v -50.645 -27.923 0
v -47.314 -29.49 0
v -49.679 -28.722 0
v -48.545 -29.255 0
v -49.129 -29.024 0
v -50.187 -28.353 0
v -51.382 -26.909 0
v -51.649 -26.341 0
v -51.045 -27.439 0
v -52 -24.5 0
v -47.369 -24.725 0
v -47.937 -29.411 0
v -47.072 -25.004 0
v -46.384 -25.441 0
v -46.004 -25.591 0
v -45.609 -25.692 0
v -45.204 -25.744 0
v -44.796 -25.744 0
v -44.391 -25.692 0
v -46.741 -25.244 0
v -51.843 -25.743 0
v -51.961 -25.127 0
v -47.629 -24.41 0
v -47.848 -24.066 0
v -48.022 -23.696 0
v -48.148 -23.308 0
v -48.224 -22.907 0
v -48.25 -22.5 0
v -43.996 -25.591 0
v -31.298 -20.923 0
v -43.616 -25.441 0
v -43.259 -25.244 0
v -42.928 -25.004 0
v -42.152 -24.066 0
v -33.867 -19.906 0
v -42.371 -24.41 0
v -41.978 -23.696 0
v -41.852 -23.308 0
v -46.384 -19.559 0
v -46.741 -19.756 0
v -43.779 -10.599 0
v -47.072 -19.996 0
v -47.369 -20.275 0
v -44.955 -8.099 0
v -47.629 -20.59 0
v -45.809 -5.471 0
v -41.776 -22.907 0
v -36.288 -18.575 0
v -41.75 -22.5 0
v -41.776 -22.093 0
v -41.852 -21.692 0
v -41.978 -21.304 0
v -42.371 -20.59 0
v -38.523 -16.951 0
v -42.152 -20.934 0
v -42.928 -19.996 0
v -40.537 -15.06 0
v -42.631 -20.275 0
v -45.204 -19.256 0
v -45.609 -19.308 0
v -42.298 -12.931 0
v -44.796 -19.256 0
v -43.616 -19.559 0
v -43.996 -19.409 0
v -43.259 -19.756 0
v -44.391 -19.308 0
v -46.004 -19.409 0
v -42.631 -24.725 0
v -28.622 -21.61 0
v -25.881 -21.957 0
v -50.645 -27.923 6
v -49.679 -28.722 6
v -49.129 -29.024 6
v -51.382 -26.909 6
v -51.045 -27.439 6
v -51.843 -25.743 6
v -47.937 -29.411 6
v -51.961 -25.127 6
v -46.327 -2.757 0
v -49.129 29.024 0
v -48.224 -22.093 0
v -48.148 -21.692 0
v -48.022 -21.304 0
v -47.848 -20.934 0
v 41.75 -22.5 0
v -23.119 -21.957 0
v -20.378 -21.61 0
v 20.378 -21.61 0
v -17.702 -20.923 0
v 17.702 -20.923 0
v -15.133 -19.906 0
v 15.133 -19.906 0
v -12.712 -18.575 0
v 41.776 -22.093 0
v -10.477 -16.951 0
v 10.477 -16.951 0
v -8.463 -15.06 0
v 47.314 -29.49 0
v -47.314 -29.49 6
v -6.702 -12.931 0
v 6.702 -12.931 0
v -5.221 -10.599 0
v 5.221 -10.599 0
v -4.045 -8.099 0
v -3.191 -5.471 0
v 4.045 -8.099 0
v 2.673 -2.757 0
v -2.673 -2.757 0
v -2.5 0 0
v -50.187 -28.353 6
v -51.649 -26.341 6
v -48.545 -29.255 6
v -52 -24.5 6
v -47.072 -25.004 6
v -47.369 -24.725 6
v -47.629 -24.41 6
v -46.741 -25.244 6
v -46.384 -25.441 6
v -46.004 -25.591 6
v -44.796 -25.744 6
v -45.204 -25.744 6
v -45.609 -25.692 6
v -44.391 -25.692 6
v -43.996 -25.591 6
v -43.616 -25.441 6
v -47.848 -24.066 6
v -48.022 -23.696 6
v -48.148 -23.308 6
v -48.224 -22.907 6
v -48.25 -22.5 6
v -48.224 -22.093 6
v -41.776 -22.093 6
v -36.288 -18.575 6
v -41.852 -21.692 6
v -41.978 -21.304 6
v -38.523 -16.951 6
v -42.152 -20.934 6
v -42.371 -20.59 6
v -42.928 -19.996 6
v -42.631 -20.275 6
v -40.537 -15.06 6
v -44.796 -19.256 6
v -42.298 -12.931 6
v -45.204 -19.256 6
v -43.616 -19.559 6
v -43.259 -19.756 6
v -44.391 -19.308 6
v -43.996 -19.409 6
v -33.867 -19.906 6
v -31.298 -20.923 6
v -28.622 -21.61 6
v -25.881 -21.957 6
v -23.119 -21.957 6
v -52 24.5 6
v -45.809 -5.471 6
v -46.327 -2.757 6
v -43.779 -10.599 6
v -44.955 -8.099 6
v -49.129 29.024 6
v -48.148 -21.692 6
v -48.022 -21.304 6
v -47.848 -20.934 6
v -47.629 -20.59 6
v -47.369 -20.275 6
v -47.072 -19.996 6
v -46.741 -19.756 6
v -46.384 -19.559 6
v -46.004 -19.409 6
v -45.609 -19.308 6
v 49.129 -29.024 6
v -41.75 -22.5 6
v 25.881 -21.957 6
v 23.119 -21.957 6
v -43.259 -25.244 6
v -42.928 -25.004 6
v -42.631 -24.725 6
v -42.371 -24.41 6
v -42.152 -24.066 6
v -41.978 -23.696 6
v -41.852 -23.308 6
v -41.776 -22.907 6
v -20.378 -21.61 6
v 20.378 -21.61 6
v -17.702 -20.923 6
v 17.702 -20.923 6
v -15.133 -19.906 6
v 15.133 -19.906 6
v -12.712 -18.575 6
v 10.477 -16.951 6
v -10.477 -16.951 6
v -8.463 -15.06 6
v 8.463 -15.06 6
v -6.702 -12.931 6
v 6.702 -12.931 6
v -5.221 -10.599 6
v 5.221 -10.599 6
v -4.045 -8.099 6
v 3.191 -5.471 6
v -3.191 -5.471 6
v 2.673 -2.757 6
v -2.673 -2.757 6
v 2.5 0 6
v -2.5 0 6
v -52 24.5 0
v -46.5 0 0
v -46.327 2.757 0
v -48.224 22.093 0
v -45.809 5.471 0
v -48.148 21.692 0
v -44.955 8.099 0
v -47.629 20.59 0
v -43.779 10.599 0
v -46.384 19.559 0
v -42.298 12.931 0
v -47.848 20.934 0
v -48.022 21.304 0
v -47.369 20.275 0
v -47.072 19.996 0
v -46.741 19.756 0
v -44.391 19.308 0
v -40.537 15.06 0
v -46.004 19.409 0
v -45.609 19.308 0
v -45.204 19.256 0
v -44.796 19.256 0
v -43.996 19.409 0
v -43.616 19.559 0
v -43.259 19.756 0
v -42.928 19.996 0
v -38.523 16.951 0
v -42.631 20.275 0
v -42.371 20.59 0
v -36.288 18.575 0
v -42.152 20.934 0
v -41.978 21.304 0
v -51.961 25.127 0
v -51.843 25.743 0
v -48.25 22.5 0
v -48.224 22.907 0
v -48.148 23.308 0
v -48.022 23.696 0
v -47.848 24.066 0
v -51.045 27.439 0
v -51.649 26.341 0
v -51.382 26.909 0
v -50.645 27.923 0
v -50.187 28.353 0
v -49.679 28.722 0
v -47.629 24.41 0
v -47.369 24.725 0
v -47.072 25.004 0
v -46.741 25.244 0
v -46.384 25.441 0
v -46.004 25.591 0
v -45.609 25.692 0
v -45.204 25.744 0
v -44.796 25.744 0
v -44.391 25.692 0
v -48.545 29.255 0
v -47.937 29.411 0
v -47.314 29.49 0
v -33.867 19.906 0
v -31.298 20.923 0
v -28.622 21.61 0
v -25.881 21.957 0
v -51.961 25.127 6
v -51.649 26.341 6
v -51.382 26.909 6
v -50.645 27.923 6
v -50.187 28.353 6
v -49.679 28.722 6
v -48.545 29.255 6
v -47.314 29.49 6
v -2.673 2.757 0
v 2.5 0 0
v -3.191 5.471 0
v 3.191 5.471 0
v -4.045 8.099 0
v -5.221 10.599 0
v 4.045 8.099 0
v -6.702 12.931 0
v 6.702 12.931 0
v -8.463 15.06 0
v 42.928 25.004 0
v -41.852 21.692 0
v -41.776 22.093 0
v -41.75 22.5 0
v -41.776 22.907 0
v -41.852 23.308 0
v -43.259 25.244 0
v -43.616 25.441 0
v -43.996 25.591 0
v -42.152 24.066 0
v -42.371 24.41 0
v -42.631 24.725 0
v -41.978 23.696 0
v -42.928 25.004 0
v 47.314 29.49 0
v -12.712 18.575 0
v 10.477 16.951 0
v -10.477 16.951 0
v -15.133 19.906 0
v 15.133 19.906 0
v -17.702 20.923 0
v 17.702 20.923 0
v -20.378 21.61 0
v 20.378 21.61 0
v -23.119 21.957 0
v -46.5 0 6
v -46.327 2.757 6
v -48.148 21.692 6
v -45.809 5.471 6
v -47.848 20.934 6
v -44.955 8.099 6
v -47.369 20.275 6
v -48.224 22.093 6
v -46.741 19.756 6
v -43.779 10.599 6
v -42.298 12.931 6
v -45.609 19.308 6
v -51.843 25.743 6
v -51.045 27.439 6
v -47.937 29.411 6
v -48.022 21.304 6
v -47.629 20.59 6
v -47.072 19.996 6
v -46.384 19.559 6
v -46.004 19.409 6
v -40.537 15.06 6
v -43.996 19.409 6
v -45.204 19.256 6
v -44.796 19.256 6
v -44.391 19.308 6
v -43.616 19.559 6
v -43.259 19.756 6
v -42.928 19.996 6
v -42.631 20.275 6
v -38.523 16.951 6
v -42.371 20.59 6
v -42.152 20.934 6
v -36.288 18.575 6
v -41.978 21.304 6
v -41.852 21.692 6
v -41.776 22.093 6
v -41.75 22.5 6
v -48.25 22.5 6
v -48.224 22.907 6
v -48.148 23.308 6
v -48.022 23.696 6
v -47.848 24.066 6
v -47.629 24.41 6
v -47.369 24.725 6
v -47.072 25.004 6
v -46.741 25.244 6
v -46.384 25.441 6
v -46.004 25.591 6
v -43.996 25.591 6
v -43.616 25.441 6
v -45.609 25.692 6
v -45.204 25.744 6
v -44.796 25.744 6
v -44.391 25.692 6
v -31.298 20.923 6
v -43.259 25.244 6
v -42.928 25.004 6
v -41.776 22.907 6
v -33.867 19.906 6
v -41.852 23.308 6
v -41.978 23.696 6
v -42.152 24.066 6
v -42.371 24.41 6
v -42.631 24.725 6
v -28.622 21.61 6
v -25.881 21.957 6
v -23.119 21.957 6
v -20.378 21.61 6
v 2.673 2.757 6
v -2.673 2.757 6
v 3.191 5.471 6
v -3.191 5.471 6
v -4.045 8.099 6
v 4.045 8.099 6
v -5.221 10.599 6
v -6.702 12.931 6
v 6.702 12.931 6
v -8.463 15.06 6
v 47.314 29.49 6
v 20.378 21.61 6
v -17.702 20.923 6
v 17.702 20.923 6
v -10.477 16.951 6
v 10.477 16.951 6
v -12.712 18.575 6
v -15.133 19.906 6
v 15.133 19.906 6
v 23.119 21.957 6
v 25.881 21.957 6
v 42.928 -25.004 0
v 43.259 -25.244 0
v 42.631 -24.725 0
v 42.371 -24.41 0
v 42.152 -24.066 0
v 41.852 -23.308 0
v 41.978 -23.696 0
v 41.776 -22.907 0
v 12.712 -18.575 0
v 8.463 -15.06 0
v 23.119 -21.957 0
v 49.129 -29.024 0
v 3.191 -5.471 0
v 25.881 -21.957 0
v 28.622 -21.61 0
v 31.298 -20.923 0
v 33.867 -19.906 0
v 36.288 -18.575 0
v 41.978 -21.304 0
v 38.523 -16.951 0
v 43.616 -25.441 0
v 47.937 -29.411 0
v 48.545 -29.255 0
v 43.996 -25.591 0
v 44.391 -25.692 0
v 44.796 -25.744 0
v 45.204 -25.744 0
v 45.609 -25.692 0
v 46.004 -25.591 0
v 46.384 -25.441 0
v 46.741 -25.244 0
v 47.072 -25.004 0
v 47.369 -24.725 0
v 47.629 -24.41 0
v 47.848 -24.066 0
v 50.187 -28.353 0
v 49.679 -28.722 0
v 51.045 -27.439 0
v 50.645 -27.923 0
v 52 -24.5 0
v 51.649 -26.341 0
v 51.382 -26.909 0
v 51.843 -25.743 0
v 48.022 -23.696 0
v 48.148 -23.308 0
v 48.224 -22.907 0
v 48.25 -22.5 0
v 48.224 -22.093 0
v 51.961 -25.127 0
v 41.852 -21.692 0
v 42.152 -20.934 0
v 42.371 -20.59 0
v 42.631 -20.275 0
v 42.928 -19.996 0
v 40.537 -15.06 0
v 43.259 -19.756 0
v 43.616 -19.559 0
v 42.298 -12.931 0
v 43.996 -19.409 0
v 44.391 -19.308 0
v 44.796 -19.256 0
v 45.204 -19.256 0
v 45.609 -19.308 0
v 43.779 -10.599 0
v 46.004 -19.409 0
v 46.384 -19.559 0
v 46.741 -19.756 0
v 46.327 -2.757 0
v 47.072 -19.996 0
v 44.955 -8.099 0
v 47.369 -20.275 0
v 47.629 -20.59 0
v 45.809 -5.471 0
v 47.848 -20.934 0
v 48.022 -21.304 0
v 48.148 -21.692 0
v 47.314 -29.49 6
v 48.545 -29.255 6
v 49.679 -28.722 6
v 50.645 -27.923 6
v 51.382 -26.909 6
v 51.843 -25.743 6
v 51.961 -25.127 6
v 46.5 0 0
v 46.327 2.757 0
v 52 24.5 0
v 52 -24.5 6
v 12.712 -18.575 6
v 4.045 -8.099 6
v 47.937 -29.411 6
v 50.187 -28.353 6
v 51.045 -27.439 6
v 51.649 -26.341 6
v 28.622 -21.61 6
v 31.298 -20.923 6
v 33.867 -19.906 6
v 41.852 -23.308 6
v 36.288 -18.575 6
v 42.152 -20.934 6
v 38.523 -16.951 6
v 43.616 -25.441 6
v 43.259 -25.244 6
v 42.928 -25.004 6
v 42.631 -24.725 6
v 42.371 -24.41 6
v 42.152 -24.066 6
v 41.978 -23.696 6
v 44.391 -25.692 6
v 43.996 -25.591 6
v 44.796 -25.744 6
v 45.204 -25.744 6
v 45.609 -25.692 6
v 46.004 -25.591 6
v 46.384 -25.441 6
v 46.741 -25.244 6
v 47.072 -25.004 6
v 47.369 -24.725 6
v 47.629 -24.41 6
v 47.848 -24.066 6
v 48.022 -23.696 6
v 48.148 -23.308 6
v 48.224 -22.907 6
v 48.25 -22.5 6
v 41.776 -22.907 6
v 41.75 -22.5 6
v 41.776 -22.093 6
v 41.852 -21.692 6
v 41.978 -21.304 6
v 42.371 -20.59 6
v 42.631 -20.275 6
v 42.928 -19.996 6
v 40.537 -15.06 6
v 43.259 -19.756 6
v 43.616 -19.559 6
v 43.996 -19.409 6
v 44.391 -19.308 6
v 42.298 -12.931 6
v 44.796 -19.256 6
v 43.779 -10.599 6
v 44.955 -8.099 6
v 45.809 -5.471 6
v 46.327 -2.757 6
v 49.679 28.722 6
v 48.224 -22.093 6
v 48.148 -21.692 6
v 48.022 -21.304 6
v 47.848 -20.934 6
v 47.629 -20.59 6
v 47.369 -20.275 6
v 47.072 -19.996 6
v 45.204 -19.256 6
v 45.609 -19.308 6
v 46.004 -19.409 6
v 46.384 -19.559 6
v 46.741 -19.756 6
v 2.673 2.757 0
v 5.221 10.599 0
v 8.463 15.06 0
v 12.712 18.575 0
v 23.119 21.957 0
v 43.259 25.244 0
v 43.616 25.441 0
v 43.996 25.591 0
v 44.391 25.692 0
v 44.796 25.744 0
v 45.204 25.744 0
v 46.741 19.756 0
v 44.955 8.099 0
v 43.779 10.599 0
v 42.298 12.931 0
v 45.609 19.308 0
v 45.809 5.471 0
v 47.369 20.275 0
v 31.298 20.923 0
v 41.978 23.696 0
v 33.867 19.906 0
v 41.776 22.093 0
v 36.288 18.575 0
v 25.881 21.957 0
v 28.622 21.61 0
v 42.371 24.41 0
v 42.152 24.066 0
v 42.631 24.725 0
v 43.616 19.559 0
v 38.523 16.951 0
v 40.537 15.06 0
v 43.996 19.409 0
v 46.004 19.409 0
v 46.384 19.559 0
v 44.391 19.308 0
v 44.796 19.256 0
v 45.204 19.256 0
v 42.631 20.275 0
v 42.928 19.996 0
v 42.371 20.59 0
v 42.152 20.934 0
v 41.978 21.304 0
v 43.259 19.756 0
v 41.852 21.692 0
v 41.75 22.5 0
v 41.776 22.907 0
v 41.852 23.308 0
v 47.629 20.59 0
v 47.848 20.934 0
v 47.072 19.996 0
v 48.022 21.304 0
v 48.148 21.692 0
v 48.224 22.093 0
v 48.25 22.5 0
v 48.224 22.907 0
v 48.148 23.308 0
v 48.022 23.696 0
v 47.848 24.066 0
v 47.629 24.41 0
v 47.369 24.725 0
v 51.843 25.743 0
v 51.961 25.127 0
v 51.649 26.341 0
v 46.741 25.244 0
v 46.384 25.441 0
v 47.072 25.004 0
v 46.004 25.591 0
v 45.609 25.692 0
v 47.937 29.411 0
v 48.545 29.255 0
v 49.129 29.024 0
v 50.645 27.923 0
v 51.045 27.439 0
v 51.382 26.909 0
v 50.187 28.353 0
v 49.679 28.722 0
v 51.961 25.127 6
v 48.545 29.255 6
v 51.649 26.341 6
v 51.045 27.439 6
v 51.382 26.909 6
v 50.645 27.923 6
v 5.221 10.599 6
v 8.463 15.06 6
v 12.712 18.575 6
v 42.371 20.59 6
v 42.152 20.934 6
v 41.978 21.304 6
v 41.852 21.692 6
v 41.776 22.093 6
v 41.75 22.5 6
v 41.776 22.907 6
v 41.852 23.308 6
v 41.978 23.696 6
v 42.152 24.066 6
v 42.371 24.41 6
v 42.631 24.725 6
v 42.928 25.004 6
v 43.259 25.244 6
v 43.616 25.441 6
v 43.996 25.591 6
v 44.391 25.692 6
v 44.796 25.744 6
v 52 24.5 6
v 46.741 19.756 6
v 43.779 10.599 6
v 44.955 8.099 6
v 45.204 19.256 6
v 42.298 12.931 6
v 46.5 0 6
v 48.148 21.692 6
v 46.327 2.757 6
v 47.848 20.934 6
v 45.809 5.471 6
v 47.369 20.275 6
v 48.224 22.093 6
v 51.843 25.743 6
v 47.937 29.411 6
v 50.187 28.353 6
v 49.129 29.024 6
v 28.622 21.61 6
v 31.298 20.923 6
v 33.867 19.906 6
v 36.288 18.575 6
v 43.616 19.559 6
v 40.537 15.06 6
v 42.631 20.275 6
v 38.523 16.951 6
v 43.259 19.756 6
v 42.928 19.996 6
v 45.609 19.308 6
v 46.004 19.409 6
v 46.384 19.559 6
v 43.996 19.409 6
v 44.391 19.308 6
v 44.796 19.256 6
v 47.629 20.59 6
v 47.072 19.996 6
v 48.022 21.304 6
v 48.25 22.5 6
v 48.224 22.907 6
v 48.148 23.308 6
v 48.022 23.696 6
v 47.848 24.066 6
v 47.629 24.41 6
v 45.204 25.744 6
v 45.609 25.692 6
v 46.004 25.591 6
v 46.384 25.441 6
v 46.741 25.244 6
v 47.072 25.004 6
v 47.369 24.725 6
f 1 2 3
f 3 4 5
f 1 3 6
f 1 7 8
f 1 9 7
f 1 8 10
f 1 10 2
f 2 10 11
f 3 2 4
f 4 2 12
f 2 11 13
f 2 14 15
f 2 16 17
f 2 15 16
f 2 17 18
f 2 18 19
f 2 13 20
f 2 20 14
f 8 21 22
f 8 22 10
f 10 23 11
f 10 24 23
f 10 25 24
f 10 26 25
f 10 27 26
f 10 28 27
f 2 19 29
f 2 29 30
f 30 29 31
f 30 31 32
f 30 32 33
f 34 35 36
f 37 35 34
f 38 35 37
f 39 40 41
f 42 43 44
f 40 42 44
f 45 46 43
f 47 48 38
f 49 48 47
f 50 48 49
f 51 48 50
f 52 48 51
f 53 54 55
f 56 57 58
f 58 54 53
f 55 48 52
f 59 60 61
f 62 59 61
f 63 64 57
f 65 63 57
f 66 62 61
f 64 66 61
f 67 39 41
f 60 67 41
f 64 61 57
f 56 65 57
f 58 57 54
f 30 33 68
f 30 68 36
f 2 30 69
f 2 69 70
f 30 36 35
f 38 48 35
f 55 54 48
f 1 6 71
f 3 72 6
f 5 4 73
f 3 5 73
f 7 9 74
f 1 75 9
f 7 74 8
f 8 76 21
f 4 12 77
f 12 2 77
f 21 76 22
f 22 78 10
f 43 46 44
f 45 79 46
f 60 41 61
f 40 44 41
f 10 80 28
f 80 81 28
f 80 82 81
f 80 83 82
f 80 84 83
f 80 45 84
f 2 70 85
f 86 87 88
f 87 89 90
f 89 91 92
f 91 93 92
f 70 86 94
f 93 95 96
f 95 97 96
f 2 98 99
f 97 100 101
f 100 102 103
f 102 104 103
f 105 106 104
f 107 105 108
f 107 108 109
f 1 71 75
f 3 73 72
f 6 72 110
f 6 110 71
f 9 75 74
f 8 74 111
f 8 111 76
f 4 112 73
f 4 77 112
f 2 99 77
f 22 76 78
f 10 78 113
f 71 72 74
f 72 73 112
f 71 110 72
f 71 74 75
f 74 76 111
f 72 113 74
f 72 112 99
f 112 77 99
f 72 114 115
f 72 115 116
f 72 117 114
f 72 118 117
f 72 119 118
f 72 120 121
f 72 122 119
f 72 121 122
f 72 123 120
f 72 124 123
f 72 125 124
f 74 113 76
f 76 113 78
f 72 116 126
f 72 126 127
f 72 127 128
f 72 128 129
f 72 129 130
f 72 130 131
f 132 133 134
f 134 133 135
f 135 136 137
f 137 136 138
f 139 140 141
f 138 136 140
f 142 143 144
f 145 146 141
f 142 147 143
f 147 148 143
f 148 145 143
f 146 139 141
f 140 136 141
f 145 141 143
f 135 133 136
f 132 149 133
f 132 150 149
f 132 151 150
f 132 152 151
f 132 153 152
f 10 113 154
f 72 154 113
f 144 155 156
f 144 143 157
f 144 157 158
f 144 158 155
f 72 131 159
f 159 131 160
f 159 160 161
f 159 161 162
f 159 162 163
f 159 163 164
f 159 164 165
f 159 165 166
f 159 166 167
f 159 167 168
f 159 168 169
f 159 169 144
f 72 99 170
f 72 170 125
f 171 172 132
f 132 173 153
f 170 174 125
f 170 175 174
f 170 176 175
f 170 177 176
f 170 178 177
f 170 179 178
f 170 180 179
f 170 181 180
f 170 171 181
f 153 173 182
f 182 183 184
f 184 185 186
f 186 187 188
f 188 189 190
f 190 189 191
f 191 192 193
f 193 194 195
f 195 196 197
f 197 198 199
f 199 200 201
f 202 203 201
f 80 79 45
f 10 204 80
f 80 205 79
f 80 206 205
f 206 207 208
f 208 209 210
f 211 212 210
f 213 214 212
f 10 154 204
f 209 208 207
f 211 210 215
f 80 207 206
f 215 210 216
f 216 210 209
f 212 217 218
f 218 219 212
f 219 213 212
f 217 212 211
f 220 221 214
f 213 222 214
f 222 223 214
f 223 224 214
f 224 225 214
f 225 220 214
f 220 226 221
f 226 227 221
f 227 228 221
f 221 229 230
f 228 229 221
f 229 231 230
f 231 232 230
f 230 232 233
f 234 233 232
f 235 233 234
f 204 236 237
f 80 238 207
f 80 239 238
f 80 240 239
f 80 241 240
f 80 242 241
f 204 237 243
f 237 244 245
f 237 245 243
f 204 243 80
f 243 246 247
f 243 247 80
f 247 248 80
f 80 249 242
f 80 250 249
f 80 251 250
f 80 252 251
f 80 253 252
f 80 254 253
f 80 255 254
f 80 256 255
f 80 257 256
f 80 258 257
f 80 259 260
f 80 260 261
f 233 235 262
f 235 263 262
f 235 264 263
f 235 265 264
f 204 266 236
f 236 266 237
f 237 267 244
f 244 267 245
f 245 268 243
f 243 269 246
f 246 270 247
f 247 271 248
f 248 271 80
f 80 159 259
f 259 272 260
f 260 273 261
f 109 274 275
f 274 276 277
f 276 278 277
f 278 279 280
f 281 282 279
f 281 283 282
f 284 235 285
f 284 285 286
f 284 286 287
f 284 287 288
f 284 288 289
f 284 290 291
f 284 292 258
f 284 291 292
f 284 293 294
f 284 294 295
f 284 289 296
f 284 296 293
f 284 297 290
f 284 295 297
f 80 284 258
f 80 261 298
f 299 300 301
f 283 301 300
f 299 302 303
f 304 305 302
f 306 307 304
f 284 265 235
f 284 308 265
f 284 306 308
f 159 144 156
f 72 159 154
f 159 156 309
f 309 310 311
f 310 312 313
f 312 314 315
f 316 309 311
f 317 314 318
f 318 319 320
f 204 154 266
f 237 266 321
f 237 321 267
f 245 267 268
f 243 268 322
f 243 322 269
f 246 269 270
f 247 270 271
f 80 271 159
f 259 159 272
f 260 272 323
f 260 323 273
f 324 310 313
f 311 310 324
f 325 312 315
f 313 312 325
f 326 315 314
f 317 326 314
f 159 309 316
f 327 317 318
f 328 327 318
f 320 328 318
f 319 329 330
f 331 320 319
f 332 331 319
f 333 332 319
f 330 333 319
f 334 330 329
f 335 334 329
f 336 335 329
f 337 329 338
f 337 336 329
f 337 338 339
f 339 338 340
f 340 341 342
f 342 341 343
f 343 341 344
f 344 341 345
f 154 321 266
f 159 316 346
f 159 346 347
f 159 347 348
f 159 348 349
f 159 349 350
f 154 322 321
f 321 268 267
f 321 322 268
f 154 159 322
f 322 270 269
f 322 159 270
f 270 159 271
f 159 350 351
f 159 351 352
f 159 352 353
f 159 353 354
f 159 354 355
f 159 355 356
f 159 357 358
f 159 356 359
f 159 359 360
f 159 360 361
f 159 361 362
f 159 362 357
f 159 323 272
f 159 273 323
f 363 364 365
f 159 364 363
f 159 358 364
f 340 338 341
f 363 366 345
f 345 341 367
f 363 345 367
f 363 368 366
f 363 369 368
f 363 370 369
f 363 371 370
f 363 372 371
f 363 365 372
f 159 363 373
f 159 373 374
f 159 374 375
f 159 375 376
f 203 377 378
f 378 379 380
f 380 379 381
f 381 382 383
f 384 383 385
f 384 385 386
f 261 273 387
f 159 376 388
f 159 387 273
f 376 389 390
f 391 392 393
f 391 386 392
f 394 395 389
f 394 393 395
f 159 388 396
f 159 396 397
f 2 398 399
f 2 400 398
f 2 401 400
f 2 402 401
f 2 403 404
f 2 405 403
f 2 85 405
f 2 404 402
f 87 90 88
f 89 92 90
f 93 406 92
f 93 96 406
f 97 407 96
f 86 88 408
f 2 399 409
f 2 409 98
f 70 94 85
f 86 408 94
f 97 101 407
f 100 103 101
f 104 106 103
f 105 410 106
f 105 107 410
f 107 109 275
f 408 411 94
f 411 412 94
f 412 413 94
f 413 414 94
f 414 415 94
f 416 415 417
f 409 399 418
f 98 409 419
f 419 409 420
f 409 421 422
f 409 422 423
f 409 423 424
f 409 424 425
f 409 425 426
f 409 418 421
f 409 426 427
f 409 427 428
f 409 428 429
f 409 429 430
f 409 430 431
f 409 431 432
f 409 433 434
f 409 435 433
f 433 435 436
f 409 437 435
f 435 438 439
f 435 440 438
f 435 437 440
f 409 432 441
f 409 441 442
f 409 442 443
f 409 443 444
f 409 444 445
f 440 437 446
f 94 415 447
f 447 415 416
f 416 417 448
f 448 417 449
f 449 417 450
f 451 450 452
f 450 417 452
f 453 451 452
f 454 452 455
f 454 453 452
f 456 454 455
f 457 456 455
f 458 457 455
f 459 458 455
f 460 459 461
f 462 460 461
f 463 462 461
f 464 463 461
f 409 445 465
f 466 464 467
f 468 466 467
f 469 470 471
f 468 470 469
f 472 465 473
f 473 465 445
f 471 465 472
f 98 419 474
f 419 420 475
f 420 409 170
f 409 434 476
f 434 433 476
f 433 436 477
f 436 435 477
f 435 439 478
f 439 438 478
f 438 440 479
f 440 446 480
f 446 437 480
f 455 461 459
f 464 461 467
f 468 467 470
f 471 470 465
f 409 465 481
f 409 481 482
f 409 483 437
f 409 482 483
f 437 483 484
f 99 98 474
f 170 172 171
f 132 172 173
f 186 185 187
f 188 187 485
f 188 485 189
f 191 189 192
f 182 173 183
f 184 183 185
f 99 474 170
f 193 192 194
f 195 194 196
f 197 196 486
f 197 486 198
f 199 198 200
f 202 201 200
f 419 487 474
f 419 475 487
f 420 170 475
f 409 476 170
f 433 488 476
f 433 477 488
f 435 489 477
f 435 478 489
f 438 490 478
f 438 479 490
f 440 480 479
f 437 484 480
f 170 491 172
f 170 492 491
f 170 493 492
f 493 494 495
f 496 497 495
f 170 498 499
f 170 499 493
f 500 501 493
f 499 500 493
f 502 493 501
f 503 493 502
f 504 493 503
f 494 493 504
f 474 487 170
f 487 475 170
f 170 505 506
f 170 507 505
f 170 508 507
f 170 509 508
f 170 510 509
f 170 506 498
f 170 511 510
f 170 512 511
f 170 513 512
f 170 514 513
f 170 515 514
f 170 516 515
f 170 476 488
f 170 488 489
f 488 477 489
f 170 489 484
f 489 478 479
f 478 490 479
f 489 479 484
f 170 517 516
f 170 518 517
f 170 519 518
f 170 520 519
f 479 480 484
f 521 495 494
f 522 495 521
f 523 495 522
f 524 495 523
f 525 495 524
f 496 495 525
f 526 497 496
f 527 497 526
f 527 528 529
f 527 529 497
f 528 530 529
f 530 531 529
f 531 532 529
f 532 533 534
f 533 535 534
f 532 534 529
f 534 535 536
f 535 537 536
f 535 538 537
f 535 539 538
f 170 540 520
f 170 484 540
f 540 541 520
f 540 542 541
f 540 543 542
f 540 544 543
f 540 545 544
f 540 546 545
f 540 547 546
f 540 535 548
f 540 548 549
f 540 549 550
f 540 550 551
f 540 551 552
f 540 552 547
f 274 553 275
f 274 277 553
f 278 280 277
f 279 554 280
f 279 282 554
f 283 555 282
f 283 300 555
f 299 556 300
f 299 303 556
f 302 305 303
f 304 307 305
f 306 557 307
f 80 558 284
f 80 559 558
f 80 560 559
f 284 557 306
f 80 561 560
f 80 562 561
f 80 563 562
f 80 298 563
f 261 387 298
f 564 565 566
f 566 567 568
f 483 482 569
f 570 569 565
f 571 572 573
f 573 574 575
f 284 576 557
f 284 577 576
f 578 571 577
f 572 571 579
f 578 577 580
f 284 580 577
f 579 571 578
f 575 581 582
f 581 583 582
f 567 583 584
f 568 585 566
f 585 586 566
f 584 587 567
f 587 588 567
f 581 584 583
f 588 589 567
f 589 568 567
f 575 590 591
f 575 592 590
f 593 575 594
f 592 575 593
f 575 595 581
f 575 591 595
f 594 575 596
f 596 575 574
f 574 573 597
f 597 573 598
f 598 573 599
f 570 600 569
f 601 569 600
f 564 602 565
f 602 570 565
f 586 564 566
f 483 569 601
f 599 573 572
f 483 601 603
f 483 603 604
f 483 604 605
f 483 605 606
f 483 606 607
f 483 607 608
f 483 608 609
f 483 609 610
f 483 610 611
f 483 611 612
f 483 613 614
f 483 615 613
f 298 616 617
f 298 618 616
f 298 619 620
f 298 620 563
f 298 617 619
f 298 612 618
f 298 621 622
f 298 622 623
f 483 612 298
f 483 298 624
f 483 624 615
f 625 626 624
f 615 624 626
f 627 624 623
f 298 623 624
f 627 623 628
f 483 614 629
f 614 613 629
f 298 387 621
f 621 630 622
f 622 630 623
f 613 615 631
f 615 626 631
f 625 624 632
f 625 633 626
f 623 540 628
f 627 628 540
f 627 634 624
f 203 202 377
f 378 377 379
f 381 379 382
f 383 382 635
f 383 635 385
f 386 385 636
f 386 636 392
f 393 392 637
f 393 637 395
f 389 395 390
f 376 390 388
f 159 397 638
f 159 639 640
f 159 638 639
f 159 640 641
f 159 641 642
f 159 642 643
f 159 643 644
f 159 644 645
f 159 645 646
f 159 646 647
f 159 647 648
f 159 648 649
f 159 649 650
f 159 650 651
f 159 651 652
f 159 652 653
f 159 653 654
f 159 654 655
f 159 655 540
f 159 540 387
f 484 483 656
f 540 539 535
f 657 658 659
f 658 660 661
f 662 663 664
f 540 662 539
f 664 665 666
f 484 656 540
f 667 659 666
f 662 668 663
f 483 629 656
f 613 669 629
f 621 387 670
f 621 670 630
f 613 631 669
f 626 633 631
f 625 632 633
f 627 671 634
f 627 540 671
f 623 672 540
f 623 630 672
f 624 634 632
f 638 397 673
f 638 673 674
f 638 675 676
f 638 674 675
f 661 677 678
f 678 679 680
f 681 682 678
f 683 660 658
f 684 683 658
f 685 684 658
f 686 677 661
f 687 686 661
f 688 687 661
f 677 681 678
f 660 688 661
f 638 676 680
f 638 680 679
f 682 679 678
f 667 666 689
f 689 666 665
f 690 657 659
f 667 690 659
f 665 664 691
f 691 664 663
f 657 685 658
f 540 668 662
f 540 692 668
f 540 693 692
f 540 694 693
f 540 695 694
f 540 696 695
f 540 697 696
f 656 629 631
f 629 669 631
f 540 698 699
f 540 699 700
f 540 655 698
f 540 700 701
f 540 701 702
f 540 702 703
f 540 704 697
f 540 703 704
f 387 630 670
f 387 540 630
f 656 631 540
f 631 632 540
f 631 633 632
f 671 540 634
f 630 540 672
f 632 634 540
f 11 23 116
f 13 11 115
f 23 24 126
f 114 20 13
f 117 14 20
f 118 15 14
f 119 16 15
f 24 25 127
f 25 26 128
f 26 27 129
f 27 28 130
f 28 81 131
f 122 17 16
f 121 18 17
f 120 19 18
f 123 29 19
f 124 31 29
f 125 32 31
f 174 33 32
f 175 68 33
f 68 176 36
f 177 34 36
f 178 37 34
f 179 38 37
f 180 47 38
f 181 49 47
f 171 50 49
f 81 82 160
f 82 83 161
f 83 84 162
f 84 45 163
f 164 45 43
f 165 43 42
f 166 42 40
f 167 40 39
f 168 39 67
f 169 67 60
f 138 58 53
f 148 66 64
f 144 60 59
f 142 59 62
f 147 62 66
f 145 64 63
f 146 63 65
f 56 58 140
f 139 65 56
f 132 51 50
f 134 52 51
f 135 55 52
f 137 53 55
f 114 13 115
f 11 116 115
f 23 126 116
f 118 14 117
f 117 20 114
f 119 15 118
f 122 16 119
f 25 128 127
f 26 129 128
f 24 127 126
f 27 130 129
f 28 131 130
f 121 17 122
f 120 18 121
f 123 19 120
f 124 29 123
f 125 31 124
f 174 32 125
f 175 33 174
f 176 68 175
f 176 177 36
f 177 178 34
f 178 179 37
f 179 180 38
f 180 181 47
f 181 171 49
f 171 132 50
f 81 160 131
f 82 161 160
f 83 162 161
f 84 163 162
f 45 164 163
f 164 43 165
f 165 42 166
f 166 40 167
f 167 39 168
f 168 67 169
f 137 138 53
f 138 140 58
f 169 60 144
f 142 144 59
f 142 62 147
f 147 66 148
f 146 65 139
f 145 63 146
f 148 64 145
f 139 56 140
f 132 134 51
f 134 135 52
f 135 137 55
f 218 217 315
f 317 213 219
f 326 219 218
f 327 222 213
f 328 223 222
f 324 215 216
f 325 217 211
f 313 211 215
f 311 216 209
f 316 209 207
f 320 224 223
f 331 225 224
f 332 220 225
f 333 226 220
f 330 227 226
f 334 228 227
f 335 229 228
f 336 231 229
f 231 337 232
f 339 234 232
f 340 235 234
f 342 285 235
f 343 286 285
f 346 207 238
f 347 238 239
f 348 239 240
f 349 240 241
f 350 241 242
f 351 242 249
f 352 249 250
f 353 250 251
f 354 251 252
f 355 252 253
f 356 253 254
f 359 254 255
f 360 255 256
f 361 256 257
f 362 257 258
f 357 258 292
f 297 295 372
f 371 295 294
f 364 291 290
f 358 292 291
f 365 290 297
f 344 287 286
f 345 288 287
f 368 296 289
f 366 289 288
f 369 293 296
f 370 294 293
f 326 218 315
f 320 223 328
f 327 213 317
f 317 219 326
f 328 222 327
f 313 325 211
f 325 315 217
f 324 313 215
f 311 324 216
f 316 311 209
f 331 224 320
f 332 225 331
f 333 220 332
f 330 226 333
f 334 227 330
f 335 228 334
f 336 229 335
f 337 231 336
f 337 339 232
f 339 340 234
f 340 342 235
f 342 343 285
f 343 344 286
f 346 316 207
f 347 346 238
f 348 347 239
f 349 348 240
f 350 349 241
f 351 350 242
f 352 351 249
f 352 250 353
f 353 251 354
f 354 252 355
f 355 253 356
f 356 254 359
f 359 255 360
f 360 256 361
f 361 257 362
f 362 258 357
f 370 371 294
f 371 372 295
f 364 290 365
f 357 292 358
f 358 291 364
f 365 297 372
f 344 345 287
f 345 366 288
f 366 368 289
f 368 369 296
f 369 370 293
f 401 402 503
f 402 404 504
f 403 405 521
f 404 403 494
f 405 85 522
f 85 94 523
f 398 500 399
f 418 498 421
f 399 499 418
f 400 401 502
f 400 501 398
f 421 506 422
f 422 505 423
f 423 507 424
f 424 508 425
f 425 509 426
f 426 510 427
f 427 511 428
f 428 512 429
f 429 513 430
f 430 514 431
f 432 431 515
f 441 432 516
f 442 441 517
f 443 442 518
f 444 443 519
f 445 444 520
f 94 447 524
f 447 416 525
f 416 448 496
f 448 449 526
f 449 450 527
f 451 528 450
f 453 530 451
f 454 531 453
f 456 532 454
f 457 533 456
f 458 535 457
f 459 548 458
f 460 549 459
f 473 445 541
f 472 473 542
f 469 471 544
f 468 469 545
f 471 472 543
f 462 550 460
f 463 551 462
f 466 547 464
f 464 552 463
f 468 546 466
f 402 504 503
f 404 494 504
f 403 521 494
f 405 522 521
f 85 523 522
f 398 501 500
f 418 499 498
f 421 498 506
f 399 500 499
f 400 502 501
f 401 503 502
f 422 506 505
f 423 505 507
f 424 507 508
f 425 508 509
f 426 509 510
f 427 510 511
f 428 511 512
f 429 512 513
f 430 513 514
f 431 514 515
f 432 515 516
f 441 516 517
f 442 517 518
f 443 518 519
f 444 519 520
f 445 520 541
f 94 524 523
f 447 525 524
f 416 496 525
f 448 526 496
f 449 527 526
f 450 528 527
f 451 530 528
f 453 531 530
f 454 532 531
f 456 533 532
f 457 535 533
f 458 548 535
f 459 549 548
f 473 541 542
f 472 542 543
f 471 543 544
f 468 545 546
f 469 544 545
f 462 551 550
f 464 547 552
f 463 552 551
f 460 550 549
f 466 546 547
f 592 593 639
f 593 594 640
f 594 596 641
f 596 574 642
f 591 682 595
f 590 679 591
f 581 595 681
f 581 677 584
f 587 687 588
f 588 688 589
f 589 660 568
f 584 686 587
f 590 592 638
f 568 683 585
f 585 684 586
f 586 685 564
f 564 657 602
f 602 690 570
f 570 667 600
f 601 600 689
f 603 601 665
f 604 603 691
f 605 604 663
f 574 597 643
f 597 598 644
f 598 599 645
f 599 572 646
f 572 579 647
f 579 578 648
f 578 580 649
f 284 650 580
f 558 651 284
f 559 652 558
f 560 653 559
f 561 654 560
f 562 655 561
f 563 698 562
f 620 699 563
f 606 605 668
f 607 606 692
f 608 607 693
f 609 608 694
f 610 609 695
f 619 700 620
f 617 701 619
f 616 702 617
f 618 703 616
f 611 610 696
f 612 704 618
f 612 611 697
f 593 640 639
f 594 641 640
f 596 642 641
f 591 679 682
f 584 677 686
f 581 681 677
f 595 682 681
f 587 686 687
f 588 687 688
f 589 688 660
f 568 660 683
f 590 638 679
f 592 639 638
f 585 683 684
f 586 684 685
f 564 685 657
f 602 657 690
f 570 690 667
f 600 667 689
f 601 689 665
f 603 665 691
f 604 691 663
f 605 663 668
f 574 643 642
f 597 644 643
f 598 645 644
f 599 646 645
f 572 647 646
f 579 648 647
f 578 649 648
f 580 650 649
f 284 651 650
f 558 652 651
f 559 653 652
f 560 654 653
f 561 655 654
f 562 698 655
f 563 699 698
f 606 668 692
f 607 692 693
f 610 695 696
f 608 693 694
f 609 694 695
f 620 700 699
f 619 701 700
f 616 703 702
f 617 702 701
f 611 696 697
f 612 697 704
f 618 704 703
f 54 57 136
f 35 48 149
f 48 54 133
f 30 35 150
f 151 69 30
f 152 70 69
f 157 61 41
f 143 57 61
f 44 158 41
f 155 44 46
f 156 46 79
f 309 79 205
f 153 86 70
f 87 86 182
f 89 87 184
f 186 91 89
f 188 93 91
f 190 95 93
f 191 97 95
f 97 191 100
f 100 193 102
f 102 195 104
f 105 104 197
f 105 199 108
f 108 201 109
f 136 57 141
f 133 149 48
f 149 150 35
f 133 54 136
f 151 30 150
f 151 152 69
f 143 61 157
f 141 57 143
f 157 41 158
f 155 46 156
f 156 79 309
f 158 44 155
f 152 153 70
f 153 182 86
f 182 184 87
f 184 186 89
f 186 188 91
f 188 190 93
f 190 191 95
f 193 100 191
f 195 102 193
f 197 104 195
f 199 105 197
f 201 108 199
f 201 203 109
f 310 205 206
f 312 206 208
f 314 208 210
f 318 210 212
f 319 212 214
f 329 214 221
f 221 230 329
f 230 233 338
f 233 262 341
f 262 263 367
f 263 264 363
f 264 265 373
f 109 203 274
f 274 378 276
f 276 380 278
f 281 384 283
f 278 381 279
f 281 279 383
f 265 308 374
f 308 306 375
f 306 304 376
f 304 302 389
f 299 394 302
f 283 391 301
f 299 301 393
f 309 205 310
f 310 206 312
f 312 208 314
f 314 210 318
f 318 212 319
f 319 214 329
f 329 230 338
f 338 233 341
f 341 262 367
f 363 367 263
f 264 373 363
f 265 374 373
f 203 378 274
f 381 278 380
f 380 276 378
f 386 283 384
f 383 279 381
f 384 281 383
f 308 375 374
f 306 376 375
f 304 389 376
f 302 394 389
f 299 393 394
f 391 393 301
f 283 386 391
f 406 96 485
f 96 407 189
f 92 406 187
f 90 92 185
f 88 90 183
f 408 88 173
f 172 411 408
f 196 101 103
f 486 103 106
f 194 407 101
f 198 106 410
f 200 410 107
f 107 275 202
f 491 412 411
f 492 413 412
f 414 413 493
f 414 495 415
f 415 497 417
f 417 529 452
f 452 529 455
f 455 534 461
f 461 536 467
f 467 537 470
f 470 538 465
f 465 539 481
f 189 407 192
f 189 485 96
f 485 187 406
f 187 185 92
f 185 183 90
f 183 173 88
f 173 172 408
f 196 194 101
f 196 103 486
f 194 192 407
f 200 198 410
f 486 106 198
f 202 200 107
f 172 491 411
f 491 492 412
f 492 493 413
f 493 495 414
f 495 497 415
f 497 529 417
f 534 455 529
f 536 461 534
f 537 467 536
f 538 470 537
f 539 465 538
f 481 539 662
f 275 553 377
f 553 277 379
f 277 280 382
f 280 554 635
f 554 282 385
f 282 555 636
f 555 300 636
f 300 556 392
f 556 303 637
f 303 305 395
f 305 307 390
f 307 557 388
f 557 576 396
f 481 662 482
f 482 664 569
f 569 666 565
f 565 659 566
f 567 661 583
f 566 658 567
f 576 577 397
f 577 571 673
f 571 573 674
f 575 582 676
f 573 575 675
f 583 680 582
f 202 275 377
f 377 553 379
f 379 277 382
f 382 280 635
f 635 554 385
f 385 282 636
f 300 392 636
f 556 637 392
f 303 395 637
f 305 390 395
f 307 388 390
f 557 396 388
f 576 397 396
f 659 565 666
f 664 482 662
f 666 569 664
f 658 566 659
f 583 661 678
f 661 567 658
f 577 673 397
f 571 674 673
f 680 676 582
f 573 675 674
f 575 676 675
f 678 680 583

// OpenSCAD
$fn = 50;

difference() {
	union() {
		hull() {
			translate(v = [-47.0, 24.5, 0]) {
				cylinder(h = 6, r = 5);
			}
			translate(v = [47.0, 24.5, 0]) {
				cylinder(h = 6, r = 5);
			}
			translate(v = [-47.0, -24.5, 0]) {
				cylinder(h = 6, r = 5);
			}
			translate(v = [47.0, -24.5, 0]) {
				cylinder(h = 6, r = 5);
			}
		}
	}
	union() {
		translate(v = [-45.0, -22.5, -100.0]) {
			cylinder(h = 200, r = 3.25);
		}
		translate(v = [-45.0, 22.5, -100.0]) {
			cylinder(h = 200, r = 3.25);
		}
		translate(v = [45.0, -22.5, -100.0]) {
			cylinder(h = 200, r = 3.25);
		}
		translate(v = [45.0, 22.5, -100.0]) {
			cylinder(h = 200, r = 3.25);
		}
		translate(v = [-45.0, -22.5, -100.0]) {
			cylinder(h = 200, r = 1.8);
		}
		translate(v = [-45.0, 22.5, -100.0]) {
			cylinder(h = 200, r = 1.8);
		}
		translate(v = [45.0, -22.5, -100.0]) {
			cylinder(h = 200, r = 1.8);
		}
		translate(v = [45.0, 22.5, -100.0]) {
			cylinder(h = 200, r = 1.8);
		}
		translate(v = [-24.5, 0, 0.0]) {
			cylinder(h = 6, r = 22.0);
		}
		translate(v = [24.5, 0, 0.0]) {
			cylinder(h = 6, r = 22.0);
		}
	}
}
